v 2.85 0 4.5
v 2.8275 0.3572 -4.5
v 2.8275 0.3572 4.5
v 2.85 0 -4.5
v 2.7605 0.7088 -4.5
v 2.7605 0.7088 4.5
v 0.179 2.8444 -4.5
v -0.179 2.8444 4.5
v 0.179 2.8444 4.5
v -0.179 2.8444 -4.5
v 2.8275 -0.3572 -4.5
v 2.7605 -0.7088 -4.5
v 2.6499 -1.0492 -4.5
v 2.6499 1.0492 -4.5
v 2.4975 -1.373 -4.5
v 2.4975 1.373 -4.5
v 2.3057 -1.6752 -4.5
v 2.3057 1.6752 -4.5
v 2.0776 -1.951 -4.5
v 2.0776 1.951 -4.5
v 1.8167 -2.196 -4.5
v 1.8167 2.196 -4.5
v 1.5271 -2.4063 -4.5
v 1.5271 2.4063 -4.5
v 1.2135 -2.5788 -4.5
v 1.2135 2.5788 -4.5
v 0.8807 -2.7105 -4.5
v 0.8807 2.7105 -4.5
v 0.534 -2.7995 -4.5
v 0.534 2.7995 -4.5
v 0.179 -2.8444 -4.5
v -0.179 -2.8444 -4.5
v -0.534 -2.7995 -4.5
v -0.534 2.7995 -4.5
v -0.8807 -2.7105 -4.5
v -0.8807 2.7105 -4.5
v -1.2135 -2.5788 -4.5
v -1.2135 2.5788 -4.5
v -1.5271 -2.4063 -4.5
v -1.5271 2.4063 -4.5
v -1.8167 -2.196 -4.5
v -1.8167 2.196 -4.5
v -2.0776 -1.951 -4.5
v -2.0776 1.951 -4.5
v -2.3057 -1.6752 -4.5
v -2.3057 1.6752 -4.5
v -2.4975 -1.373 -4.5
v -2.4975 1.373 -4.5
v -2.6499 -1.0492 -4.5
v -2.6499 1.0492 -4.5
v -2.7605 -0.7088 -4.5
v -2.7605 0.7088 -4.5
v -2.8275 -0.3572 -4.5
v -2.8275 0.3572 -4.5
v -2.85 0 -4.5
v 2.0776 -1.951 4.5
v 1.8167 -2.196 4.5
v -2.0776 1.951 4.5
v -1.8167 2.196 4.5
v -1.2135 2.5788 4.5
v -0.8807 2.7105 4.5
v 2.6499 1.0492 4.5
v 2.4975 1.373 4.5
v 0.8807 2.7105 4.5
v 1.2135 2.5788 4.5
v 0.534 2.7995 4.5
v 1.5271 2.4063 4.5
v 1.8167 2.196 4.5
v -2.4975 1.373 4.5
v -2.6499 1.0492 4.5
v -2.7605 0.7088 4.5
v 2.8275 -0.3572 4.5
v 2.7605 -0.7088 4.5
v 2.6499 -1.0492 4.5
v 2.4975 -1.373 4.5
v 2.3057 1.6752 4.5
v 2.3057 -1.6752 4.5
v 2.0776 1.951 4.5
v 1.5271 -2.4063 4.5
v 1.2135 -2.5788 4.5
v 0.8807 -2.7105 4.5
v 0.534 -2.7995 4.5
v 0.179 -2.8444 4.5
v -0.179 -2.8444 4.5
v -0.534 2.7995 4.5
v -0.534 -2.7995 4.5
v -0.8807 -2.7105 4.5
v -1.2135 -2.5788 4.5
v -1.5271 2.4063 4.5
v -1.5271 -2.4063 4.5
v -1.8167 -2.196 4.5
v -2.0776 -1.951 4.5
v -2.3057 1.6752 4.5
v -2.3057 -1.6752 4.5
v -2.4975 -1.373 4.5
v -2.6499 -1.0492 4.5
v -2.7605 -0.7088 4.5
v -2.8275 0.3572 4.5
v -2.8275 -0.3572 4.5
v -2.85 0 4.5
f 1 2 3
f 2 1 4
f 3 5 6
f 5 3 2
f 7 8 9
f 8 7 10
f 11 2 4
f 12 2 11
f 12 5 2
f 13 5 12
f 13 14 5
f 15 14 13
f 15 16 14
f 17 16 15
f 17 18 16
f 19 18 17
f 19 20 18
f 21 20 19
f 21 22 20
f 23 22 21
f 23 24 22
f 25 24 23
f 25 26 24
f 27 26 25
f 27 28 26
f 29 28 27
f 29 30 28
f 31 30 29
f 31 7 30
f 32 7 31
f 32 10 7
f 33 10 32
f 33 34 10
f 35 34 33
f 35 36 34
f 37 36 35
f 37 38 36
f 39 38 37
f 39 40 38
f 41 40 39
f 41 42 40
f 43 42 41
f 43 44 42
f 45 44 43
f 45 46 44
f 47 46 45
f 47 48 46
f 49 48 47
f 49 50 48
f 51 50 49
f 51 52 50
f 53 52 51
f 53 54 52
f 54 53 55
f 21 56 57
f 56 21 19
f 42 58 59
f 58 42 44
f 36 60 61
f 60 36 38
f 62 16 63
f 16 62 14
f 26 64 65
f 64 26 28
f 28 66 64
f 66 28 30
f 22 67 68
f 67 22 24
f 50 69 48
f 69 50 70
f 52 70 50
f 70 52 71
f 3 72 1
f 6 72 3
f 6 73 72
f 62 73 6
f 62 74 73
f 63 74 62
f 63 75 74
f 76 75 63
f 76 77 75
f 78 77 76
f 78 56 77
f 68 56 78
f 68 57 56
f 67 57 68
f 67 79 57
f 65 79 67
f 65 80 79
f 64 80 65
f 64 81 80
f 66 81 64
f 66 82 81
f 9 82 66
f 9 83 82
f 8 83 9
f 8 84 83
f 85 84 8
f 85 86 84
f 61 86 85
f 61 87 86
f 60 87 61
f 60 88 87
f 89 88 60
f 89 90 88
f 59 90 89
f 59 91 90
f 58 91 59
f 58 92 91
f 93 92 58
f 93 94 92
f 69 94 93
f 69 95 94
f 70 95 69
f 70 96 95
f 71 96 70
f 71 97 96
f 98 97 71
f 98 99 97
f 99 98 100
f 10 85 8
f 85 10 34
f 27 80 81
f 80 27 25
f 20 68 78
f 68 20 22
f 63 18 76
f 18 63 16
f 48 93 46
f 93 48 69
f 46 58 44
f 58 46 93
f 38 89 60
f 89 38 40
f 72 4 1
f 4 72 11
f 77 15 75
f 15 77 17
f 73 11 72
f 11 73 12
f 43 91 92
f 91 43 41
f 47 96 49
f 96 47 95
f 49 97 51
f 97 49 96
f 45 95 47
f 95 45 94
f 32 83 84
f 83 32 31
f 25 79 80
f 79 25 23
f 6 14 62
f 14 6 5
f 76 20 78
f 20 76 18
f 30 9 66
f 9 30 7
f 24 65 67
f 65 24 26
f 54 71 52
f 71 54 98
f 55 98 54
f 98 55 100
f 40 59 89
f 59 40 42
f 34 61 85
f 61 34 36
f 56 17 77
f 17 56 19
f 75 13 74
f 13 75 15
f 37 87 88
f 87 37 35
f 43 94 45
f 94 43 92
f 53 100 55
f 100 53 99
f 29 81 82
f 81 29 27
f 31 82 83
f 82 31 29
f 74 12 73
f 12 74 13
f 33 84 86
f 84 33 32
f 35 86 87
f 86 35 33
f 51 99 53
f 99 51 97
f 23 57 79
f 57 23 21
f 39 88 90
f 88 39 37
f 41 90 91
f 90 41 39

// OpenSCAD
$fn = 50;


difference() {
	union() {
		translate(v = [0, 0, -4.5000000000]) {
			cylinder(h = 9, r = 2.8500000000);
		}
	}
	union() {
		translate(v = [0, 0, -100.0000000000]) {
			cylinder(h = 200, r = 0);
		}
	}
}
